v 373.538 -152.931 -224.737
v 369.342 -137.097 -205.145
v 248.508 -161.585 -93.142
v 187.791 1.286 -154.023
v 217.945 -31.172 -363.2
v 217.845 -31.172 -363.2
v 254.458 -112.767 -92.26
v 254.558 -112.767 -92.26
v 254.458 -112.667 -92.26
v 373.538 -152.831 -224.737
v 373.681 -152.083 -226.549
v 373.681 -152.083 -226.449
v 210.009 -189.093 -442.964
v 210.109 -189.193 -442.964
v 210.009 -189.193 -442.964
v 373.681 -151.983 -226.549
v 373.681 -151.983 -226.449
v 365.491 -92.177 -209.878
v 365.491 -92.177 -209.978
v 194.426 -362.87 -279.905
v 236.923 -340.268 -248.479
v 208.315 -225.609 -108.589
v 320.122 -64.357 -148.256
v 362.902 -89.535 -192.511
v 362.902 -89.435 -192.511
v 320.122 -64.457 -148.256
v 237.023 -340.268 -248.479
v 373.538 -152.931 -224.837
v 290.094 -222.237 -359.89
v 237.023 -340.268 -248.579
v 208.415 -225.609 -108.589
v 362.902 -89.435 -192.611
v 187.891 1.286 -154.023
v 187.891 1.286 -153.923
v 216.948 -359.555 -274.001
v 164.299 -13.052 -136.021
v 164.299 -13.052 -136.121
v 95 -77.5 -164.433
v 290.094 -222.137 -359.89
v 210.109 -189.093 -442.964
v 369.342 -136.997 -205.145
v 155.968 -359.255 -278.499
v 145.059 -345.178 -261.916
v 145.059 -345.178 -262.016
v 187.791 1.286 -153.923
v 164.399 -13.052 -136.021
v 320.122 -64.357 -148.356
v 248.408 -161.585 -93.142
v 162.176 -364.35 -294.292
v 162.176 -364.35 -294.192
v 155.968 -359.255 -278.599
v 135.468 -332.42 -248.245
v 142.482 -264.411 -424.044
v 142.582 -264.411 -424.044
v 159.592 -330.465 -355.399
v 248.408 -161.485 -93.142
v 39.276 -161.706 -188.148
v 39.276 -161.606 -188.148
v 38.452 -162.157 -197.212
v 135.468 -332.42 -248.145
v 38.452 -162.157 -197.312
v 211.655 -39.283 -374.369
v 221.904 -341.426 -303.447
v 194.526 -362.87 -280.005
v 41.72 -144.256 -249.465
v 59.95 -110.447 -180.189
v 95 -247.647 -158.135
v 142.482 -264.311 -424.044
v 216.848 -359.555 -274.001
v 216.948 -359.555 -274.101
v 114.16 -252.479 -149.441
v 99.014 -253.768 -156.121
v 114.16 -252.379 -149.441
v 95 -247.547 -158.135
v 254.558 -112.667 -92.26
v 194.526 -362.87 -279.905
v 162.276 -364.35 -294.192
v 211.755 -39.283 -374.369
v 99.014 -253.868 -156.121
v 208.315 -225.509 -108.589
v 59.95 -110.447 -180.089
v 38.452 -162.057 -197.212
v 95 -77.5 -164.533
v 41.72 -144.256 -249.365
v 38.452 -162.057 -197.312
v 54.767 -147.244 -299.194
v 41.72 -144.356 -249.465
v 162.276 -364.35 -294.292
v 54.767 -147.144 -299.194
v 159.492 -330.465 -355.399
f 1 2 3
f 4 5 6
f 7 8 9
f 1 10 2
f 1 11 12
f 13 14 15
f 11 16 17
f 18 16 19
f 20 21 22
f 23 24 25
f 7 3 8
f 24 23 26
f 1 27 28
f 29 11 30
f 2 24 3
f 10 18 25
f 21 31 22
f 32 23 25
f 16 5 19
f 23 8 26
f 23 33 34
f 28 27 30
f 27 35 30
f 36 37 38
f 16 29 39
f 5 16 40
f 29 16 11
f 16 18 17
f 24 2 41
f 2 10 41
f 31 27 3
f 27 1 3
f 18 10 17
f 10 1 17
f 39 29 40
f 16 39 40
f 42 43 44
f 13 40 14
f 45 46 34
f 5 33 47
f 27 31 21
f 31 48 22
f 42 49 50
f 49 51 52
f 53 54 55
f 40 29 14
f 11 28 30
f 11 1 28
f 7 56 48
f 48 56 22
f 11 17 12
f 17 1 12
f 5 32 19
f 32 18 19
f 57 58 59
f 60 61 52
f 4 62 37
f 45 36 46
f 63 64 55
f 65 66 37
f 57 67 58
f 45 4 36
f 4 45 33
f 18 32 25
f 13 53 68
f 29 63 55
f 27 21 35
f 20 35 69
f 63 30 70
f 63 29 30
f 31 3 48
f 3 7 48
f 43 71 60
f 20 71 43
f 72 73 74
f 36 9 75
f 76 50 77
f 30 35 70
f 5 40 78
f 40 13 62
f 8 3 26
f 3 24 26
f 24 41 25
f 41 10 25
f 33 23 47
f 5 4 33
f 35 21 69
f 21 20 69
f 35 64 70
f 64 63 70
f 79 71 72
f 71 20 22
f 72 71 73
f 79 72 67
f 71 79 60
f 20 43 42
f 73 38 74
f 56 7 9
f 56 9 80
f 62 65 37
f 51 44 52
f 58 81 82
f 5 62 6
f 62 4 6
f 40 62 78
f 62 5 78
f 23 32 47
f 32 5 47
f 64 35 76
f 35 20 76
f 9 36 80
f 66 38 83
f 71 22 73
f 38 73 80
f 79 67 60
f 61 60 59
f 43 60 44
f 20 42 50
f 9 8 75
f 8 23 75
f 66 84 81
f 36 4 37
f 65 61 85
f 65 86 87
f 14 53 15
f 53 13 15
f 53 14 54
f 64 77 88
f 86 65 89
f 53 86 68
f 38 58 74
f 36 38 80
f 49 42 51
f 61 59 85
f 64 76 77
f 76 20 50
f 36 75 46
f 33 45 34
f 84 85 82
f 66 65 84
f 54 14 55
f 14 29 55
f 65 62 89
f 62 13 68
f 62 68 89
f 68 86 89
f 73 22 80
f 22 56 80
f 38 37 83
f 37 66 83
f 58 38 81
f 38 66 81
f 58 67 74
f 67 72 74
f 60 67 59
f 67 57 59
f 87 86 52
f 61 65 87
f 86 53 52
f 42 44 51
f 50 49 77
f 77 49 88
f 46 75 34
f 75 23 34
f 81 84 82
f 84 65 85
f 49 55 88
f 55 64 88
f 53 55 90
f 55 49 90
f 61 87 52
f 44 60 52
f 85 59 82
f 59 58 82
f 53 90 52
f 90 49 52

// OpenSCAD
hull(){ translate([373.438061041,-152.931465147,-224.836858949])cube(0.1,0.1,0.1);
translate([373.581484315,-152.083397093,-226.548584545])cube(0.1,0.1,0.1);
translate([289.994219653,-222.23699422,-359.89017341])cube(0.1,0.1,0.1);
translate([248.40761458,-161.585167809,-93.2416095272])cube(0.1,0.1,0.1);
translate([254.458423364,-112.767477521,-92.360423782])cube(0.1,0.1,0.1);
translate([369.242311967,-137.09707299,-205.244535013])cube(0.1,0.1,0.1);
translate([164.298813376,-13.1521035599,-136.120819849])cube(0.1,0.1,0.1);
translate([217.844777842,-31.2723600692,-363.19965378])cube(0.1,0.1,0.1);
translate([187.790697674,1.18604651163,-154.023255814])cube(0.1,0.1,0.1);
translate([365.391469471,-92.2772421852,-209.978089395])cube(0.1,0.1,0.1);
translate([320.02210029,-64.4573997866,-148.356195702])cube(0.1,0.1,0.1);
translate([362.801621364,-89.5350500715,-192.610872675])cube(0.1,0.1,0.1);
translate([39.2764397906,-161.705759162,-188.248167539])cube(0.1,0.1,0.1);
translate([95.0,-247.647058824,-158.235294118])cube(0.1,0.1,0.1);
translate([59.9502982107,-110.546719682,-180.188866799])cube(0.1,0.1,0.1);
translate([95.0,-77.6,-164.533333333])cube(0.1,0.1,0.1);
translate([99.0142611911,-253.867687838,-156.220784366])cube(0.1,0.1,0.1);
translate([221.804445988,-341.425842306,-303.447377562])cube(0.1,0.1,0.1);
translate([208.314893617,-225.608510638,-108.689361702])cube(0.1,0.1,0.1);
translate([114.15960452,-252.478813559,-149.540960452])cube(0.1,0.1,0.1);
translate([236.923466973,-340.26806842,-248.578527483])cube(0.1,0.1,0.1);
translate([216.848151848,-359.555444555,-274.100899101])cube(0.1,0.1,0.1);
translate([194.426271622,-362.870354513,-280.005137866])cube(0.1,0.1,0.1);
translate([162.176215042,-364.349714906,-294.291532524])cube(0.1,0.1,0.1);
translate([159.492269725,-330.464905277,-355.399216085])cube(0.1,0.1,0.1);
translate([135.467518347,-332.4204947,-248.245447132])cube(0.1,0.1,0.1);
translate([38.4515561989,-162.157481129,-197.312067004])cube(0.1,0.1,0.1);
translate([41.7197932371,-144.356019815,-249.464785699])cube(0.1,0.1,0.1);
translate([155.967563583,-359.255436786,-278.599336528])cube(0.1,0.1,0.1);
translate([145.059288538,-345.177865613,-262.015810277])cube(0.1,0.1,0.1);
translate([54.7670048854,-147.243517475,-299.193912063])cube(0.1,0.1,0.1);
translate([211.655132641,-39.3829296424,-374.36947328])cube(0.1,0.1,0.1);
translate([142.482182855,-264.410507025,-424.043982896])cube(0.1,0.1,0.1);
translate([210.008869742,-189.192853523,-442.96376077])cube(0.1,0.1,0.1); }
